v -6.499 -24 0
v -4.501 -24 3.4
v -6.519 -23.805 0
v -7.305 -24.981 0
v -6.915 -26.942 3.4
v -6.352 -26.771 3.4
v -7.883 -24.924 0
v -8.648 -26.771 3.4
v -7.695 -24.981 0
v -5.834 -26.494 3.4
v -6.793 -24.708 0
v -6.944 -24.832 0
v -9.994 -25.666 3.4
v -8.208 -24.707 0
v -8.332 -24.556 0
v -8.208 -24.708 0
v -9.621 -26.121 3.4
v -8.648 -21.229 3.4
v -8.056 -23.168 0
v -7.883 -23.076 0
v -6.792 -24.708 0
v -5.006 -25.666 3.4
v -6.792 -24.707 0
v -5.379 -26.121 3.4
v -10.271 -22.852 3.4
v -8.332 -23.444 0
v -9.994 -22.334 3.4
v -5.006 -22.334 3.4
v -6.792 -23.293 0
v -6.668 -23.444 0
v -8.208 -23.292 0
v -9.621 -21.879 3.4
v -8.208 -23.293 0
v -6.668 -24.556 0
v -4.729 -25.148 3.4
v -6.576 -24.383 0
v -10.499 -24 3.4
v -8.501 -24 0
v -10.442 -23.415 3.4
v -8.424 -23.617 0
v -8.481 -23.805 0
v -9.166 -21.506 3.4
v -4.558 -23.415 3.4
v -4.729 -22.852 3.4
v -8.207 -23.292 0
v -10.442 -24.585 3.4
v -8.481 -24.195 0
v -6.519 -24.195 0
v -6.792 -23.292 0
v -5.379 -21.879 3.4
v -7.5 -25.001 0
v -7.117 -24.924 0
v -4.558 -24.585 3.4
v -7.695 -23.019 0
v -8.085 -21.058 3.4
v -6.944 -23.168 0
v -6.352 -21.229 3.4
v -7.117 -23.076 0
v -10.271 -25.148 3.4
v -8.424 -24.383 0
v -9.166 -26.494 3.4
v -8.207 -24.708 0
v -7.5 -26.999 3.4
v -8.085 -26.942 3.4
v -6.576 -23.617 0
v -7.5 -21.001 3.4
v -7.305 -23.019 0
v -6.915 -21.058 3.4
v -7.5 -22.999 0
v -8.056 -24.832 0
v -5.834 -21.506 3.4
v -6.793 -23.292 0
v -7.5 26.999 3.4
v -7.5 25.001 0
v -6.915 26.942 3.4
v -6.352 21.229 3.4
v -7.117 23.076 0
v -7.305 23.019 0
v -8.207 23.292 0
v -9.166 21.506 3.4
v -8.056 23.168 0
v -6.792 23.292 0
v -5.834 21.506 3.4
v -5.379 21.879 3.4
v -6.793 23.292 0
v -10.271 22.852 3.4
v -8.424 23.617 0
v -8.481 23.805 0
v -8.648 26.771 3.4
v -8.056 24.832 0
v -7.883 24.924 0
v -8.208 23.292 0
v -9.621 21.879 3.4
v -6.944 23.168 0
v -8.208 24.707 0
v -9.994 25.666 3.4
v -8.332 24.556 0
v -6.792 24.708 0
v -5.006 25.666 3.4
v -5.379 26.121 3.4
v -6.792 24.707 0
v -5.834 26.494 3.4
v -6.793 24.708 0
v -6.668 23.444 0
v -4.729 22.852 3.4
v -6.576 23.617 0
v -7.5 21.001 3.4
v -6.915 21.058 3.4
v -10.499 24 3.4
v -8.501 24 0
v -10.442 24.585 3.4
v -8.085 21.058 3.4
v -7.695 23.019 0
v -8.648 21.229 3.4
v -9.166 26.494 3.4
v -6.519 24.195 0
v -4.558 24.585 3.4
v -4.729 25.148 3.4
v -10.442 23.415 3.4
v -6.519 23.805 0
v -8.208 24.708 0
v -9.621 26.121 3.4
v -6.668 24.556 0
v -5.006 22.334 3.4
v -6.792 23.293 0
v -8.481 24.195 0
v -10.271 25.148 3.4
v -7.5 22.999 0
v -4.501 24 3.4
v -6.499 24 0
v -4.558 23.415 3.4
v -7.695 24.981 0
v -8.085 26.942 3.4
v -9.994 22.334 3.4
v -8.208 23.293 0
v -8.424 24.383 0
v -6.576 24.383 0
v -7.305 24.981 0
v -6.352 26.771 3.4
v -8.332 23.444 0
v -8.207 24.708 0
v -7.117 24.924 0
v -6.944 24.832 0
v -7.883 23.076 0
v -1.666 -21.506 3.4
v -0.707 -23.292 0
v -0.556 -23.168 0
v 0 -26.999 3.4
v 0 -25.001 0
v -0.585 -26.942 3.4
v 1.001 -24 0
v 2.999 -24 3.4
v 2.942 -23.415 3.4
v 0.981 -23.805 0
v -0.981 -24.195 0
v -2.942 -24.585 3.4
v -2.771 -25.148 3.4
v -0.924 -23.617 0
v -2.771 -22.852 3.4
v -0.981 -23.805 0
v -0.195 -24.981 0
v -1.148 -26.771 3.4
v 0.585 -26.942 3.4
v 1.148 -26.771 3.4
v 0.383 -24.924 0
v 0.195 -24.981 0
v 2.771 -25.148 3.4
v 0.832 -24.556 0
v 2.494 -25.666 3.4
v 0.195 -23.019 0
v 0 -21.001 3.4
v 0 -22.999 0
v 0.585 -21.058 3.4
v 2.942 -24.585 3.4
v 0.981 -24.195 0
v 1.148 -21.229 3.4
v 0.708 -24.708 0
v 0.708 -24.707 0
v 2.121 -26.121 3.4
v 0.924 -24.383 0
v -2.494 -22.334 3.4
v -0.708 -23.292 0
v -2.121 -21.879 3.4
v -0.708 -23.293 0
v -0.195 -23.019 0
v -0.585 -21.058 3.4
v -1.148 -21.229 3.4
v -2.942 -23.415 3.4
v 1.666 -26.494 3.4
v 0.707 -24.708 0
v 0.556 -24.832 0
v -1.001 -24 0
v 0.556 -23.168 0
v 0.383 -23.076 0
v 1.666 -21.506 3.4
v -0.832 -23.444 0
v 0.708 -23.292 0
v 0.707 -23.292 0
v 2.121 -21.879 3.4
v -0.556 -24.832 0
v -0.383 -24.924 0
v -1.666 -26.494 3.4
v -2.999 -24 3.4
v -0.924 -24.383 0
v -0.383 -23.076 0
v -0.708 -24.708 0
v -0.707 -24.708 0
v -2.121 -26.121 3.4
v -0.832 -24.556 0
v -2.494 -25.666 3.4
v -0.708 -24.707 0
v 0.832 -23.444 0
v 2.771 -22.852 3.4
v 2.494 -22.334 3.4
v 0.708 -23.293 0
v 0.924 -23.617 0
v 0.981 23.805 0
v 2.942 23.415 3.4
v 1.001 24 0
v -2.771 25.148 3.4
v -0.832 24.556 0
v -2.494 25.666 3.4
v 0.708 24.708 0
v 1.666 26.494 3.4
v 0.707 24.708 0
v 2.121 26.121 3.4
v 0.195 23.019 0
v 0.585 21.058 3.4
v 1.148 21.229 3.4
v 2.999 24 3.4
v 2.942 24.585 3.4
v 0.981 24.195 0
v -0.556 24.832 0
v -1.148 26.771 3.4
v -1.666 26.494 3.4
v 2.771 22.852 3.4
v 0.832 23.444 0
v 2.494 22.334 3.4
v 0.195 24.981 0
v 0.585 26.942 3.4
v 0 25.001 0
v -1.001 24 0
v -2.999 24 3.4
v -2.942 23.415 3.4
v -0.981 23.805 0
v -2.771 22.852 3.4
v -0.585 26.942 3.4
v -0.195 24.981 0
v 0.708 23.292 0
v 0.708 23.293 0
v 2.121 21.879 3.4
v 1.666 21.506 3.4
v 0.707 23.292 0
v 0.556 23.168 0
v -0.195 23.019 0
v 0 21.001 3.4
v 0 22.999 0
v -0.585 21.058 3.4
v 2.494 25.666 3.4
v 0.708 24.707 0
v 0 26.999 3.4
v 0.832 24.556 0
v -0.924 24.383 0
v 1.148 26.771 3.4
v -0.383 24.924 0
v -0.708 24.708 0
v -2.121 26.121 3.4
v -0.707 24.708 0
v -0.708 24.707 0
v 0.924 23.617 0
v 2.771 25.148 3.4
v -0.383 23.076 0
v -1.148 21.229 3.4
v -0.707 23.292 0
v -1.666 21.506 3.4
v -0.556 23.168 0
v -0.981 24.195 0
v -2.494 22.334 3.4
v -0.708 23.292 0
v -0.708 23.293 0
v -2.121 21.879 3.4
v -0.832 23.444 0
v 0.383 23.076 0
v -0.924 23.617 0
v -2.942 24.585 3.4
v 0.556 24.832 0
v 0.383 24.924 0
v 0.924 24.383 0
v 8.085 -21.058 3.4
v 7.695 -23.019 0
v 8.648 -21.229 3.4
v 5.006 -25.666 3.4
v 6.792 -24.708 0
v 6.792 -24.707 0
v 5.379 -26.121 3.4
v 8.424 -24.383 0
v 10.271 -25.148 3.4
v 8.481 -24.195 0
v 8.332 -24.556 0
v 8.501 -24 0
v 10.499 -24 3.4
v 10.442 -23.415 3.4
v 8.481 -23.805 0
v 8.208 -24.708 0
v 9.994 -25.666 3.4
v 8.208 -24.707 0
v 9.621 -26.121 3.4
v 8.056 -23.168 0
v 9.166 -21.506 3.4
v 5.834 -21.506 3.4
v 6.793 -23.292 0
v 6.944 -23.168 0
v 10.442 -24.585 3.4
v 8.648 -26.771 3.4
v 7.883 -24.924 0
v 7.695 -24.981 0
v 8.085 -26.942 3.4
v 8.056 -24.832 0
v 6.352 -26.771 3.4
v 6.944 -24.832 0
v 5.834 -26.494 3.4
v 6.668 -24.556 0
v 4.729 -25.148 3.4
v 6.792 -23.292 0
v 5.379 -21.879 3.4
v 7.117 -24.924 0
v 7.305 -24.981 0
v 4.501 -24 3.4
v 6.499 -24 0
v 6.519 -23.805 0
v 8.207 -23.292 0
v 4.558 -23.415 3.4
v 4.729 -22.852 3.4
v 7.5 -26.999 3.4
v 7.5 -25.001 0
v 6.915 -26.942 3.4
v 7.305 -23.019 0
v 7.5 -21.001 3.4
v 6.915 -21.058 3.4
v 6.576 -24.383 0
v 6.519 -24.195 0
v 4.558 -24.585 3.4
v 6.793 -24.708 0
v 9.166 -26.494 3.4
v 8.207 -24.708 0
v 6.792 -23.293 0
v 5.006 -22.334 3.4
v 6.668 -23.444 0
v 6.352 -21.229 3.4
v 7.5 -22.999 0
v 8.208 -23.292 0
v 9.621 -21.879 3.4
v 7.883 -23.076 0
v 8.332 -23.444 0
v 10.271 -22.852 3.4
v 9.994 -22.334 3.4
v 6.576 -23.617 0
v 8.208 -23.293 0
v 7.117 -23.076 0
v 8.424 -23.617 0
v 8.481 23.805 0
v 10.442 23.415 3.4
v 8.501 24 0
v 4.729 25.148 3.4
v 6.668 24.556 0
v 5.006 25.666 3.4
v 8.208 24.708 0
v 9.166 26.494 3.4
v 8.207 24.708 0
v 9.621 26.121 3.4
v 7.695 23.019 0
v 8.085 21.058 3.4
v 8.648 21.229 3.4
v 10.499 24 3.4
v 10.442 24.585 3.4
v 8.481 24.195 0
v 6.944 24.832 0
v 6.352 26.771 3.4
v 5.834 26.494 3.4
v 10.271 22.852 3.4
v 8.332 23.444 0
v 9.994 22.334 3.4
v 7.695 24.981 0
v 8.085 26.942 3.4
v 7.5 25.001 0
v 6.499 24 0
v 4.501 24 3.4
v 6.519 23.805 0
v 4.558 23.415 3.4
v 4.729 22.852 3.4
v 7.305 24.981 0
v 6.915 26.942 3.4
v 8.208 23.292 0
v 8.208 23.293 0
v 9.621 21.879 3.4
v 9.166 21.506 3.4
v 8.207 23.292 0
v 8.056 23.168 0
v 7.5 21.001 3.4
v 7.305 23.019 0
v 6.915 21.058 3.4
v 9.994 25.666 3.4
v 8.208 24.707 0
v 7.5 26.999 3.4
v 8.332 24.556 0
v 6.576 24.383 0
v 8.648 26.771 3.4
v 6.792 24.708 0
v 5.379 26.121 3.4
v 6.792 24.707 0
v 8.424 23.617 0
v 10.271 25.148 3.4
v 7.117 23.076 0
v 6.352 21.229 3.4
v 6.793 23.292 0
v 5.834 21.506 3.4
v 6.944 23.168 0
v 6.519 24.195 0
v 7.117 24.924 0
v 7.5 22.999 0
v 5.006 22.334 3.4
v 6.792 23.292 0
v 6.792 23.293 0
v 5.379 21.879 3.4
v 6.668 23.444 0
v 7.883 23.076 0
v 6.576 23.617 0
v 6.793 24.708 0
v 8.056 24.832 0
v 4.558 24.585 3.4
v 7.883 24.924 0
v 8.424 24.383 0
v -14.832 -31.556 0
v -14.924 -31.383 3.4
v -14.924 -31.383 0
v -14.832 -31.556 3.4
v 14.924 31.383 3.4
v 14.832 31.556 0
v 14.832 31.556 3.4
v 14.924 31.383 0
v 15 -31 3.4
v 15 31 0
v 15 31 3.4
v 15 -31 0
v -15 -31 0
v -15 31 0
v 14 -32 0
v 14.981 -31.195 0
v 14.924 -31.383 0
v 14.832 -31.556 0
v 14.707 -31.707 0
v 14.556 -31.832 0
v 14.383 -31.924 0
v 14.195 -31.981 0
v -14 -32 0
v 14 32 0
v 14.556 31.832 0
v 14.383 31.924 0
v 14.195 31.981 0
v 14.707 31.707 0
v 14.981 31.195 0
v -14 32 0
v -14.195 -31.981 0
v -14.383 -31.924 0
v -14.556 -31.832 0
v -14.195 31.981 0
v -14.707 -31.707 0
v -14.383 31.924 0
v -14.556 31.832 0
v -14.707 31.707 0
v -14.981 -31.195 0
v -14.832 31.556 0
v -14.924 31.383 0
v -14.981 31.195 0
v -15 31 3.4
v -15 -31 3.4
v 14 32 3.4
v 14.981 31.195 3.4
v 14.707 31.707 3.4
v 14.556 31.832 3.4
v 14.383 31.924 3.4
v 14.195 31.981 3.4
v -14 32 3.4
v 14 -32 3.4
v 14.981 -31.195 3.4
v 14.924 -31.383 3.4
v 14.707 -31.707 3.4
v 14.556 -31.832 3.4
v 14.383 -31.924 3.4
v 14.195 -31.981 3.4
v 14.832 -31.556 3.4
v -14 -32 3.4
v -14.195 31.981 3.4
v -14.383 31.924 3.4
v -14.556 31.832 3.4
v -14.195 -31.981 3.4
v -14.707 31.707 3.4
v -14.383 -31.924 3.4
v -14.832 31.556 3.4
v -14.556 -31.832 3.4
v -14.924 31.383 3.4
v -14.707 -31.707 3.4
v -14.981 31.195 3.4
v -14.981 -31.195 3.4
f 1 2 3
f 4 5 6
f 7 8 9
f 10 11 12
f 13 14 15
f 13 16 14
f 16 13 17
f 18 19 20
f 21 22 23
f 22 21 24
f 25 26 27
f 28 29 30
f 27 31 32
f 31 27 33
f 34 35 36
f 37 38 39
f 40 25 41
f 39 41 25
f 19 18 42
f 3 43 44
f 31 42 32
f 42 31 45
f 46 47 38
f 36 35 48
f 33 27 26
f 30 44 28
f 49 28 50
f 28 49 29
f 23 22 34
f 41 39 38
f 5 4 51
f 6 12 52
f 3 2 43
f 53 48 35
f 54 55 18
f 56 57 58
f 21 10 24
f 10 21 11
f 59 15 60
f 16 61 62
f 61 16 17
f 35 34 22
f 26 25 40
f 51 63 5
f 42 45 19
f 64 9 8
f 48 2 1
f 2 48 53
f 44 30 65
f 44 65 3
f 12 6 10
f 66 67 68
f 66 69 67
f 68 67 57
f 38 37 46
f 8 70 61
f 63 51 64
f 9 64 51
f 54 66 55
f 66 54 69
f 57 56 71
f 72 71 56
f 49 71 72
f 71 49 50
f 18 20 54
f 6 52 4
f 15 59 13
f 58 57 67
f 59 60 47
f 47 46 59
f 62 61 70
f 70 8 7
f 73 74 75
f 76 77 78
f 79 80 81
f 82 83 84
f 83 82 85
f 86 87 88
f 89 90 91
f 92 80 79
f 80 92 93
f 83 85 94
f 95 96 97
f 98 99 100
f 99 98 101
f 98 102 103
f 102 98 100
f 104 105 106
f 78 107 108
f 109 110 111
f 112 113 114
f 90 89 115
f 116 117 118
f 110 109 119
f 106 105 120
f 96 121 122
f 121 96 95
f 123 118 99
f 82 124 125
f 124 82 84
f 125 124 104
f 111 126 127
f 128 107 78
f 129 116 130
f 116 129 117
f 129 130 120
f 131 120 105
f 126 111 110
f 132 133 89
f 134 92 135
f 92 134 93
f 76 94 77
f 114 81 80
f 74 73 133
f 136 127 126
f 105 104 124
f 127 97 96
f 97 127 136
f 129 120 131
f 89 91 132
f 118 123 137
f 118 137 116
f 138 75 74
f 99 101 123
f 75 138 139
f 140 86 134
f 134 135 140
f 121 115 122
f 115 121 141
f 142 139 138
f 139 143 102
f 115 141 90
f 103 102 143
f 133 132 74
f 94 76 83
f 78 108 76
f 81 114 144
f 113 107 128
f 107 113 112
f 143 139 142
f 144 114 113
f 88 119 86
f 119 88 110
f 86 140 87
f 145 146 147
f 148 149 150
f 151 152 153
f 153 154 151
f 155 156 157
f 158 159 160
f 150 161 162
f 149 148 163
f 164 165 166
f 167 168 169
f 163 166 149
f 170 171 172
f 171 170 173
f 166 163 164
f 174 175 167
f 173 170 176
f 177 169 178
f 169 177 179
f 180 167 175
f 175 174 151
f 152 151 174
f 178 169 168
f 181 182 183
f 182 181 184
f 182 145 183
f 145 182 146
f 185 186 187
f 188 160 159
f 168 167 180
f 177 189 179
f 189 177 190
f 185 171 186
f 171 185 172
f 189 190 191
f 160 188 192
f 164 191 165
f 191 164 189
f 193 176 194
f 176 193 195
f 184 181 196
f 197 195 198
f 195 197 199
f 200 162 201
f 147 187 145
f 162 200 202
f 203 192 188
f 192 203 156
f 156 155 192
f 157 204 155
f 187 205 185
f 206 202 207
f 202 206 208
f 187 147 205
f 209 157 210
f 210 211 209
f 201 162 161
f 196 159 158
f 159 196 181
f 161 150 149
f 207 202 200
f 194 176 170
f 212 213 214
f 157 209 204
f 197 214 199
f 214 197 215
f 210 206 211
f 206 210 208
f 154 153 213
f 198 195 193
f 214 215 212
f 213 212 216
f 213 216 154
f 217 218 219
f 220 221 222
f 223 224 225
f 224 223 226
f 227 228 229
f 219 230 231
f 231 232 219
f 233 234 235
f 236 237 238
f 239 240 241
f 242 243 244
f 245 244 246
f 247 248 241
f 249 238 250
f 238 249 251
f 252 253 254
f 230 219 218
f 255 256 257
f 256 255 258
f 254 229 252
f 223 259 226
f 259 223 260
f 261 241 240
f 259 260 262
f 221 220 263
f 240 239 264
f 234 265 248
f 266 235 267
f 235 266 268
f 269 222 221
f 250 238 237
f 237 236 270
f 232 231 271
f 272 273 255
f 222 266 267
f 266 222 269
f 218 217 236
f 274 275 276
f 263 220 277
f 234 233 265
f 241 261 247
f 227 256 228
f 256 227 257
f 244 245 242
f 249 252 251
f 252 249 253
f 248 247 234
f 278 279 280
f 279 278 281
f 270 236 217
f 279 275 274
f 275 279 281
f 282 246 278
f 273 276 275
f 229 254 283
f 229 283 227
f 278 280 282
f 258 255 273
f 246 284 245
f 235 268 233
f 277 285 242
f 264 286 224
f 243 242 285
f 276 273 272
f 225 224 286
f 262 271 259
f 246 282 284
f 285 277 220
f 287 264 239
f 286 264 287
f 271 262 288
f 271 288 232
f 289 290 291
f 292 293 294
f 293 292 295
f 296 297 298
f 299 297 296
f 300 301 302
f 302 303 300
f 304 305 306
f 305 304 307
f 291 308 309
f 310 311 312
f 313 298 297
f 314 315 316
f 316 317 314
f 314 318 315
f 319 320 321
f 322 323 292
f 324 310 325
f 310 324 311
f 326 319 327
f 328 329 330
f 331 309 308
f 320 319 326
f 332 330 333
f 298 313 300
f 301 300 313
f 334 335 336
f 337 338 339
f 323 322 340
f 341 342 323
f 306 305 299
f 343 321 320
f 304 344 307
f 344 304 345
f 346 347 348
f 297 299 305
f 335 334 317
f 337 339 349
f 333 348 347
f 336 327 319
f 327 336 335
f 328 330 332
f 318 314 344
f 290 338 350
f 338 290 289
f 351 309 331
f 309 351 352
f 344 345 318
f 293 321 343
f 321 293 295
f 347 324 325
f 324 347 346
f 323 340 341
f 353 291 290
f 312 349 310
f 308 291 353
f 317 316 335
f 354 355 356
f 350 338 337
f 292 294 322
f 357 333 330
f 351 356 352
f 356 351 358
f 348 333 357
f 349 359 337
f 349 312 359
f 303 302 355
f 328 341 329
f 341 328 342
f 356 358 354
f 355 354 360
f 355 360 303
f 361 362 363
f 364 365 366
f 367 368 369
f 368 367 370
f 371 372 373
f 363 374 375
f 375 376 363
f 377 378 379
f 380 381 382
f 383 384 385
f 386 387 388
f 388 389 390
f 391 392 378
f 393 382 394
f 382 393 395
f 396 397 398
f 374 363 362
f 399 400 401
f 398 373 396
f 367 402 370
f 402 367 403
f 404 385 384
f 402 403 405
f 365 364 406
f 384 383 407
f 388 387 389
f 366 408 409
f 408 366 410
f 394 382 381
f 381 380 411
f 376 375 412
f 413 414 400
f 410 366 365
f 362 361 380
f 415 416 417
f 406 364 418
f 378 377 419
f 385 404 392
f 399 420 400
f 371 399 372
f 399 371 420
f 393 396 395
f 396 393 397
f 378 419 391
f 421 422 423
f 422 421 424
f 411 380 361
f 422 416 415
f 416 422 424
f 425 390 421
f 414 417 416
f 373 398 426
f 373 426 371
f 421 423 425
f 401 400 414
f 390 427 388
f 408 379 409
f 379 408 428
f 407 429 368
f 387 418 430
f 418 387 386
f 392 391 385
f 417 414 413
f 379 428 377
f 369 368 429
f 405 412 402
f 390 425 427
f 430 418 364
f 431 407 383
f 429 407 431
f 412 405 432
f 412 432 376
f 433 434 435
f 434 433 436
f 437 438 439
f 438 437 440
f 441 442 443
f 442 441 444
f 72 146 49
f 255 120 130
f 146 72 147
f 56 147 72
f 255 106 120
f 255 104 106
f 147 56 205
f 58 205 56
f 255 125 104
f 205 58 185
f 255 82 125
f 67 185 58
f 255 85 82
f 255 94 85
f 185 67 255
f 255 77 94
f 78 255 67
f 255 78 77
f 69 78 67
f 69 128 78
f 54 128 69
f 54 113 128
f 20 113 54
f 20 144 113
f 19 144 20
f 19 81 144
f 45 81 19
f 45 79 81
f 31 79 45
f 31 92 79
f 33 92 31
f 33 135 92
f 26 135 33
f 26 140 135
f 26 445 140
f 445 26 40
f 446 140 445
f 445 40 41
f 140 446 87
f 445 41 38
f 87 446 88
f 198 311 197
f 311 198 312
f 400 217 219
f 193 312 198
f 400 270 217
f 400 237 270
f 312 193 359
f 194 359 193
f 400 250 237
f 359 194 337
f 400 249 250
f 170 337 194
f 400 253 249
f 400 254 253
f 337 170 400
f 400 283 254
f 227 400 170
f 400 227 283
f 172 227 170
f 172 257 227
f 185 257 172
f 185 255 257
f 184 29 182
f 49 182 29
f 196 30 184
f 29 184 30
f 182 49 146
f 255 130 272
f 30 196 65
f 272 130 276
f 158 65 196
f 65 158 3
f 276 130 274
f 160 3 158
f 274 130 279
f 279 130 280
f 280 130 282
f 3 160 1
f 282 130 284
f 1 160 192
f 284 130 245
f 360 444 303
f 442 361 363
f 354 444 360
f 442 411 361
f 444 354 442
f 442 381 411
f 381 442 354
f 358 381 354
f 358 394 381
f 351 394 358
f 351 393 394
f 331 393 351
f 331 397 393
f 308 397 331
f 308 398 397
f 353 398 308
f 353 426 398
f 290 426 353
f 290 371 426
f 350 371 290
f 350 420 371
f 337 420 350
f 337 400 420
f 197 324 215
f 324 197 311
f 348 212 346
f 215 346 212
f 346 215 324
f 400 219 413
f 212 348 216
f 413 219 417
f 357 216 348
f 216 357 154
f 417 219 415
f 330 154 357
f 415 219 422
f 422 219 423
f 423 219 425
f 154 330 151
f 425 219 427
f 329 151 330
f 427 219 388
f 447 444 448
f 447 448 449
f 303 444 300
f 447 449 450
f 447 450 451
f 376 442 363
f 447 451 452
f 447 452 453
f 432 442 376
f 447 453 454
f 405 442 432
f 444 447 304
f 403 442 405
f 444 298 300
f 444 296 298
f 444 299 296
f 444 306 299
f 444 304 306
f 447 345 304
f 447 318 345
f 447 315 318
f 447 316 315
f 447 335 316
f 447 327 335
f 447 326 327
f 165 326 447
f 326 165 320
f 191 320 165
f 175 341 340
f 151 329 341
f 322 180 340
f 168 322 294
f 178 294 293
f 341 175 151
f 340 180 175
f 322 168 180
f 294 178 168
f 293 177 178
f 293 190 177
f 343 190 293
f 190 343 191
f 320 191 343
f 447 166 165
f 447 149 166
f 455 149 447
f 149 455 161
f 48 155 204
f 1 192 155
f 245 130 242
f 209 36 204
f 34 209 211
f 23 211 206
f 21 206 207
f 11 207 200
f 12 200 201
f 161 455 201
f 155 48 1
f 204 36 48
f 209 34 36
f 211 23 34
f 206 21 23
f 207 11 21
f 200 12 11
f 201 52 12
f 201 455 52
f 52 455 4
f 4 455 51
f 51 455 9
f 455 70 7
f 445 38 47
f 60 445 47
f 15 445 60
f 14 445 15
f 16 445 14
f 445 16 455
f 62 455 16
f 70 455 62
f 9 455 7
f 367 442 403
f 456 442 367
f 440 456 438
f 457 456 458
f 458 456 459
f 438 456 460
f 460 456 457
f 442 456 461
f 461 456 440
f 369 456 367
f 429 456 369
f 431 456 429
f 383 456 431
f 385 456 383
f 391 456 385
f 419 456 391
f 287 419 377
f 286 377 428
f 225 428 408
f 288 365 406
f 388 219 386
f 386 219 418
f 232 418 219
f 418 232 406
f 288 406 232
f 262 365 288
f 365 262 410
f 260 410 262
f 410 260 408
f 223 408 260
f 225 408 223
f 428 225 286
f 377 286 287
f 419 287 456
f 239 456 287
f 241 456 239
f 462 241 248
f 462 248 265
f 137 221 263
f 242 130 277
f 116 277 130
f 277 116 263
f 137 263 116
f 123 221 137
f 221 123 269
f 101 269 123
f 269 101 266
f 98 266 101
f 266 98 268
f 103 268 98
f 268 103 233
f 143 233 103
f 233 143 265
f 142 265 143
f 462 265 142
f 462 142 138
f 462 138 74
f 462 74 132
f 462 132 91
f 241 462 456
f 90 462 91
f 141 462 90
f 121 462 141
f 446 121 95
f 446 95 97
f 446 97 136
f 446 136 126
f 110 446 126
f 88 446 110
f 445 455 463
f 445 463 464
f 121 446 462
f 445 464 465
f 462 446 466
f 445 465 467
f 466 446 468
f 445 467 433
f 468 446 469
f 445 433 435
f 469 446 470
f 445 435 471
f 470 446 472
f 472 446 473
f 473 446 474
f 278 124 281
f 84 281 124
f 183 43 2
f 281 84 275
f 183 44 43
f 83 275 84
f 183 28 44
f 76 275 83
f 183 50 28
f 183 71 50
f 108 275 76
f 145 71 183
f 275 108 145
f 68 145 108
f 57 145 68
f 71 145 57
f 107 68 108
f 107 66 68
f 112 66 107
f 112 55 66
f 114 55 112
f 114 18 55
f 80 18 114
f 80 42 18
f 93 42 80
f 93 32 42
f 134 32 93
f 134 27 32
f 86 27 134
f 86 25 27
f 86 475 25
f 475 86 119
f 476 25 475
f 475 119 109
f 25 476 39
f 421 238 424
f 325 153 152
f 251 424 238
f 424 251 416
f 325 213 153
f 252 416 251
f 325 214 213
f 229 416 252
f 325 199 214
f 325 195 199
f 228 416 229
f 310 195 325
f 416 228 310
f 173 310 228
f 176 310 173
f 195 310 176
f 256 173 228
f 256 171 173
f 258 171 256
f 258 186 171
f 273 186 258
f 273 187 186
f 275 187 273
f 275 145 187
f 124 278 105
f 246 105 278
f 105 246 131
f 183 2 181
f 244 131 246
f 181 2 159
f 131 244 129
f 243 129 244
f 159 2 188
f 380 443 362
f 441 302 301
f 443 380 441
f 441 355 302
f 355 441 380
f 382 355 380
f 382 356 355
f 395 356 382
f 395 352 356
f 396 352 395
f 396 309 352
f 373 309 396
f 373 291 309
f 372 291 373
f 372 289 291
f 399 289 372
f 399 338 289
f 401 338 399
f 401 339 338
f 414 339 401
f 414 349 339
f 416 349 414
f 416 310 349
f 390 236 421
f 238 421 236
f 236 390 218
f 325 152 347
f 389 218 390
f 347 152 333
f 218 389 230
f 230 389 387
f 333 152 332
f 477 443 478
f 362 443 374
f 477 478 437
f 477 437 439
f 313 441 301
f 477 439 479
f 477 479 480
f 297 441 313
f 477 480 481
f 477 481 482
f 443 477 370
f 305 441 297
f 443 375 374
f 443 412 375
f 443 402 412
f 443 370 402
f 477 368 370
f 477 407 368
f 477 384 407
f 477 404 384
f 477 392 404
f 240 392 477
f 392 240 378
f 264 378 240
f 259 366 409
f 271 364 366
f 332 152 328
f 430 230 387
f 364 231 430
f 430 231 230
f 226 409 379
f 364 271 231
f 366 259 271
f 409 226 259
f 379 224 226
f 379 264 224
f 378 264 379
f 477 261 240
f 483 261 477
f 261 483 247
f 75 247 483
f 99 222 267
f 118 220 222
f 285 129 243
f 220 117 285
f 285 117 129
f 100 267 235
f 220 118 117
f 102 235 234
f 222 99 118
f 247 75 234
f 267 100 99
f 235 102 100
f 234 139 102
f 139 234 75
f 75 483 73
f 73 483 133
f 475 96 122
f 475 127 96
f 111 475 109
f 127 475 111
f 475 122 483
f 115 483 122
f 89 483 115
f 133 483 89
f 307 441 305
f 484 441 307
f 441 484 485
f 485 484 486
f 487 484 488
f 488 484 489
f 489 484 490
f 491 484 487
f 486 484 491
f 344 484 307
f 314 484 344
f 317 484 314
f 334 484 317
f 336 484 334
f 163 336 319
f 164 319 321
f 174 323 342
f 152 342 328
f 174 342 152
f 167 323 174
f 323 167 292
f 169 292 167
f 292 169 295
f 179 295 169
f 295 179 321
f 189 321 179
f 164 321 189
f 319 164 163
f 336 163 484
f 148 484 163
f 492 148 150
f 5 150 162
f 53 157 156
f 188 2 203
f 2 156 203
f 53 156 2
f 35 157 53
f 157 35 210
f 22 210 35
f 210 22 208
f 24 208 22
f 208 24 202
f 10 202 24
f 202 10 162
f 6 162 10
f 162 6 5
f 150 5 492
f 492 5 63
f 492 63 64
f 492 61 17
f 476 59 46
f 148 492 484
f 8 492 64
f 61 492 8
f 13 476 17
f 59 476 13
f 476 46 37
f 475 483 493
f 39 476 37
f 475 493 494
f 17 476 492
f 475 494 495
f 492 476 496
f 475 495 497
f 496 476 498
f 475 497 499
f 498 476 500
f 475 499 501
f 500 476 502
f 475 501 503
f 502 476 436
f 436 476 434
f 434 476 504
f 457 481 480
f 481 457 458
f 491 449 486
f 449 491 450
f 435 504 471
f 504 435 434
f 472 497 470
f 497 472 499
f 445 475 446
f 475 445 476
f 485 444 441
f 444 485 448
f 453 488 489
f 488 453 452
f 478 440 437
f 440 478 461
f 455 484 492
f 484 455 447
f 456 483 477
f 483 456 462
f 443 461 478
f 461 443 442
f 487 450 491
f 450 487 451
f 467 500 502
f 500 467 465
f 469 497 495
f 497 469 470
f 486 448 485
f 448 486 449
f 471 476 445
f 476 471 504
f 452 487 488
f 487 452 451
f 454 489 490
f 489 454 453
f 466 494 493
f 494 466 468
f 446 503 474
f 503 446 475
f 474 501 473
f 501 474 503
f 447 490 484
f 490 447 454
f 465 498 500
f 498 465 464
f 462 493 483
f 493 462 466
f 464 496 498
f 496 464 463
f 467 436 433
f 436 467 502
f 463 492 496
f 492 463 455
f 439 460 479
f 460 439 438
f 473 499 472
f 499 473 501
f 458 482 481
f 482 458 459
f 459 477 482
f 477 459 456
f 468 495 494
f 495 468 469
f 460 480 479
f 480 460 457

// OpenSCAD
// file: ../shapes.scad
// The xy_ variants of shape modules are centered with respect to the X/Y axes and "sit" on te XY plane.

$fn=32;

module xy_cube(width, depth, height) {
    translate([0, 0, height / 2])
    cube([width, depth, height], center=true);
}

module xy_cylinder(
    h,
    r, r1, r2,
    d, d1, d2)
{
    translate([0, 0, h / 2])
    cylinder(h=h, r=r, r1=r1, r2=r2, d=d, d1=d1, d2=d2, center=true);
}

module rounded_square(width, length, radius) {
    diameter = radius * 2;
    
    minkowski() {
        square([width - diameter, length - diameter], center=true);
        circle(radius);
    }
}

// Spreads out its children, spacing them along the x/y/z axis by the given amount.
module spread(x, y, z) {
    for(i = [0 : $children -1 ]) {
        translate([i*x, i*y, i*z])
        children(i);
    }
}

spread(15, 0, 0) {
    xy_cube(10, 10, 10);
    xy_cylinder(10, d=10);
    rounded_square(5, 10, 1);
}
// file: sentinel.scad
// The designs in this folder are meant to be mounted on a side panel using the "battery panel mount" that is
// included in the official AAT STLs
// https://github.com/aat-sentinel/AAT-lite-hardware/tree/main/Extras/AAT%20battery%20panel%20mount

// Dimensions of the blocks on a side panel of the Sentinel AAT
panel_block_width = 16;
panel_block_length = 30;
panel_block_separation = 32;

// M3 phillips flat head screw dimensions, included in the Sentinel kit.
panel_screwhead_diameter = 6;
panel_screw_diameter = 2;

module panel_mounting_holes(height) {
    // There are 3 screw holes, evenly spaced, in a single column centered on the blocks.
    x_offset = panel_block_length / 4;
    y_offset = (panel_block_separation / 2) + panel_block_width / 2;
    
    for(x = [-1, 0, 1]) {
        for(y = [-1, 1]) {
            translate([x * x_offset, y * y_offset, -epsilon])
            xy_cylinder(
                h = height + (2 * epsilon),
                d1 = panel_screw_diameter,
                d2 = panel_screwhead_diameter
            );
        }
    }
}
// file: ../globals.scad
$fn = 64;

// The tolerance of your 3d printer that results in a "tight fit" of two parts.
tolerance = 0.1;

// A small value to be used to offset unions and differences to avoid "z-fighting"
epsilon = 0.001;
// main file
// This is a simple plate which the Eachine (or really any small VRX) can be zip-tied to).

include <../globals.scad>
include <./sentinel.scad>
use <../shapes.scad>


plate_length = (panel_block_width * 2) + panel_block_separation;
plate_width = panel_block_length;
plate_thickness = 3.4;

module mounting_plate() {
    linear_extrude(plate_thickness)
    rounded_square(plate_width, plate_length, 1.0);
}
    

difference() {
    mounting_plate();
    panel_mounting_holes(plate_thickness);
}
